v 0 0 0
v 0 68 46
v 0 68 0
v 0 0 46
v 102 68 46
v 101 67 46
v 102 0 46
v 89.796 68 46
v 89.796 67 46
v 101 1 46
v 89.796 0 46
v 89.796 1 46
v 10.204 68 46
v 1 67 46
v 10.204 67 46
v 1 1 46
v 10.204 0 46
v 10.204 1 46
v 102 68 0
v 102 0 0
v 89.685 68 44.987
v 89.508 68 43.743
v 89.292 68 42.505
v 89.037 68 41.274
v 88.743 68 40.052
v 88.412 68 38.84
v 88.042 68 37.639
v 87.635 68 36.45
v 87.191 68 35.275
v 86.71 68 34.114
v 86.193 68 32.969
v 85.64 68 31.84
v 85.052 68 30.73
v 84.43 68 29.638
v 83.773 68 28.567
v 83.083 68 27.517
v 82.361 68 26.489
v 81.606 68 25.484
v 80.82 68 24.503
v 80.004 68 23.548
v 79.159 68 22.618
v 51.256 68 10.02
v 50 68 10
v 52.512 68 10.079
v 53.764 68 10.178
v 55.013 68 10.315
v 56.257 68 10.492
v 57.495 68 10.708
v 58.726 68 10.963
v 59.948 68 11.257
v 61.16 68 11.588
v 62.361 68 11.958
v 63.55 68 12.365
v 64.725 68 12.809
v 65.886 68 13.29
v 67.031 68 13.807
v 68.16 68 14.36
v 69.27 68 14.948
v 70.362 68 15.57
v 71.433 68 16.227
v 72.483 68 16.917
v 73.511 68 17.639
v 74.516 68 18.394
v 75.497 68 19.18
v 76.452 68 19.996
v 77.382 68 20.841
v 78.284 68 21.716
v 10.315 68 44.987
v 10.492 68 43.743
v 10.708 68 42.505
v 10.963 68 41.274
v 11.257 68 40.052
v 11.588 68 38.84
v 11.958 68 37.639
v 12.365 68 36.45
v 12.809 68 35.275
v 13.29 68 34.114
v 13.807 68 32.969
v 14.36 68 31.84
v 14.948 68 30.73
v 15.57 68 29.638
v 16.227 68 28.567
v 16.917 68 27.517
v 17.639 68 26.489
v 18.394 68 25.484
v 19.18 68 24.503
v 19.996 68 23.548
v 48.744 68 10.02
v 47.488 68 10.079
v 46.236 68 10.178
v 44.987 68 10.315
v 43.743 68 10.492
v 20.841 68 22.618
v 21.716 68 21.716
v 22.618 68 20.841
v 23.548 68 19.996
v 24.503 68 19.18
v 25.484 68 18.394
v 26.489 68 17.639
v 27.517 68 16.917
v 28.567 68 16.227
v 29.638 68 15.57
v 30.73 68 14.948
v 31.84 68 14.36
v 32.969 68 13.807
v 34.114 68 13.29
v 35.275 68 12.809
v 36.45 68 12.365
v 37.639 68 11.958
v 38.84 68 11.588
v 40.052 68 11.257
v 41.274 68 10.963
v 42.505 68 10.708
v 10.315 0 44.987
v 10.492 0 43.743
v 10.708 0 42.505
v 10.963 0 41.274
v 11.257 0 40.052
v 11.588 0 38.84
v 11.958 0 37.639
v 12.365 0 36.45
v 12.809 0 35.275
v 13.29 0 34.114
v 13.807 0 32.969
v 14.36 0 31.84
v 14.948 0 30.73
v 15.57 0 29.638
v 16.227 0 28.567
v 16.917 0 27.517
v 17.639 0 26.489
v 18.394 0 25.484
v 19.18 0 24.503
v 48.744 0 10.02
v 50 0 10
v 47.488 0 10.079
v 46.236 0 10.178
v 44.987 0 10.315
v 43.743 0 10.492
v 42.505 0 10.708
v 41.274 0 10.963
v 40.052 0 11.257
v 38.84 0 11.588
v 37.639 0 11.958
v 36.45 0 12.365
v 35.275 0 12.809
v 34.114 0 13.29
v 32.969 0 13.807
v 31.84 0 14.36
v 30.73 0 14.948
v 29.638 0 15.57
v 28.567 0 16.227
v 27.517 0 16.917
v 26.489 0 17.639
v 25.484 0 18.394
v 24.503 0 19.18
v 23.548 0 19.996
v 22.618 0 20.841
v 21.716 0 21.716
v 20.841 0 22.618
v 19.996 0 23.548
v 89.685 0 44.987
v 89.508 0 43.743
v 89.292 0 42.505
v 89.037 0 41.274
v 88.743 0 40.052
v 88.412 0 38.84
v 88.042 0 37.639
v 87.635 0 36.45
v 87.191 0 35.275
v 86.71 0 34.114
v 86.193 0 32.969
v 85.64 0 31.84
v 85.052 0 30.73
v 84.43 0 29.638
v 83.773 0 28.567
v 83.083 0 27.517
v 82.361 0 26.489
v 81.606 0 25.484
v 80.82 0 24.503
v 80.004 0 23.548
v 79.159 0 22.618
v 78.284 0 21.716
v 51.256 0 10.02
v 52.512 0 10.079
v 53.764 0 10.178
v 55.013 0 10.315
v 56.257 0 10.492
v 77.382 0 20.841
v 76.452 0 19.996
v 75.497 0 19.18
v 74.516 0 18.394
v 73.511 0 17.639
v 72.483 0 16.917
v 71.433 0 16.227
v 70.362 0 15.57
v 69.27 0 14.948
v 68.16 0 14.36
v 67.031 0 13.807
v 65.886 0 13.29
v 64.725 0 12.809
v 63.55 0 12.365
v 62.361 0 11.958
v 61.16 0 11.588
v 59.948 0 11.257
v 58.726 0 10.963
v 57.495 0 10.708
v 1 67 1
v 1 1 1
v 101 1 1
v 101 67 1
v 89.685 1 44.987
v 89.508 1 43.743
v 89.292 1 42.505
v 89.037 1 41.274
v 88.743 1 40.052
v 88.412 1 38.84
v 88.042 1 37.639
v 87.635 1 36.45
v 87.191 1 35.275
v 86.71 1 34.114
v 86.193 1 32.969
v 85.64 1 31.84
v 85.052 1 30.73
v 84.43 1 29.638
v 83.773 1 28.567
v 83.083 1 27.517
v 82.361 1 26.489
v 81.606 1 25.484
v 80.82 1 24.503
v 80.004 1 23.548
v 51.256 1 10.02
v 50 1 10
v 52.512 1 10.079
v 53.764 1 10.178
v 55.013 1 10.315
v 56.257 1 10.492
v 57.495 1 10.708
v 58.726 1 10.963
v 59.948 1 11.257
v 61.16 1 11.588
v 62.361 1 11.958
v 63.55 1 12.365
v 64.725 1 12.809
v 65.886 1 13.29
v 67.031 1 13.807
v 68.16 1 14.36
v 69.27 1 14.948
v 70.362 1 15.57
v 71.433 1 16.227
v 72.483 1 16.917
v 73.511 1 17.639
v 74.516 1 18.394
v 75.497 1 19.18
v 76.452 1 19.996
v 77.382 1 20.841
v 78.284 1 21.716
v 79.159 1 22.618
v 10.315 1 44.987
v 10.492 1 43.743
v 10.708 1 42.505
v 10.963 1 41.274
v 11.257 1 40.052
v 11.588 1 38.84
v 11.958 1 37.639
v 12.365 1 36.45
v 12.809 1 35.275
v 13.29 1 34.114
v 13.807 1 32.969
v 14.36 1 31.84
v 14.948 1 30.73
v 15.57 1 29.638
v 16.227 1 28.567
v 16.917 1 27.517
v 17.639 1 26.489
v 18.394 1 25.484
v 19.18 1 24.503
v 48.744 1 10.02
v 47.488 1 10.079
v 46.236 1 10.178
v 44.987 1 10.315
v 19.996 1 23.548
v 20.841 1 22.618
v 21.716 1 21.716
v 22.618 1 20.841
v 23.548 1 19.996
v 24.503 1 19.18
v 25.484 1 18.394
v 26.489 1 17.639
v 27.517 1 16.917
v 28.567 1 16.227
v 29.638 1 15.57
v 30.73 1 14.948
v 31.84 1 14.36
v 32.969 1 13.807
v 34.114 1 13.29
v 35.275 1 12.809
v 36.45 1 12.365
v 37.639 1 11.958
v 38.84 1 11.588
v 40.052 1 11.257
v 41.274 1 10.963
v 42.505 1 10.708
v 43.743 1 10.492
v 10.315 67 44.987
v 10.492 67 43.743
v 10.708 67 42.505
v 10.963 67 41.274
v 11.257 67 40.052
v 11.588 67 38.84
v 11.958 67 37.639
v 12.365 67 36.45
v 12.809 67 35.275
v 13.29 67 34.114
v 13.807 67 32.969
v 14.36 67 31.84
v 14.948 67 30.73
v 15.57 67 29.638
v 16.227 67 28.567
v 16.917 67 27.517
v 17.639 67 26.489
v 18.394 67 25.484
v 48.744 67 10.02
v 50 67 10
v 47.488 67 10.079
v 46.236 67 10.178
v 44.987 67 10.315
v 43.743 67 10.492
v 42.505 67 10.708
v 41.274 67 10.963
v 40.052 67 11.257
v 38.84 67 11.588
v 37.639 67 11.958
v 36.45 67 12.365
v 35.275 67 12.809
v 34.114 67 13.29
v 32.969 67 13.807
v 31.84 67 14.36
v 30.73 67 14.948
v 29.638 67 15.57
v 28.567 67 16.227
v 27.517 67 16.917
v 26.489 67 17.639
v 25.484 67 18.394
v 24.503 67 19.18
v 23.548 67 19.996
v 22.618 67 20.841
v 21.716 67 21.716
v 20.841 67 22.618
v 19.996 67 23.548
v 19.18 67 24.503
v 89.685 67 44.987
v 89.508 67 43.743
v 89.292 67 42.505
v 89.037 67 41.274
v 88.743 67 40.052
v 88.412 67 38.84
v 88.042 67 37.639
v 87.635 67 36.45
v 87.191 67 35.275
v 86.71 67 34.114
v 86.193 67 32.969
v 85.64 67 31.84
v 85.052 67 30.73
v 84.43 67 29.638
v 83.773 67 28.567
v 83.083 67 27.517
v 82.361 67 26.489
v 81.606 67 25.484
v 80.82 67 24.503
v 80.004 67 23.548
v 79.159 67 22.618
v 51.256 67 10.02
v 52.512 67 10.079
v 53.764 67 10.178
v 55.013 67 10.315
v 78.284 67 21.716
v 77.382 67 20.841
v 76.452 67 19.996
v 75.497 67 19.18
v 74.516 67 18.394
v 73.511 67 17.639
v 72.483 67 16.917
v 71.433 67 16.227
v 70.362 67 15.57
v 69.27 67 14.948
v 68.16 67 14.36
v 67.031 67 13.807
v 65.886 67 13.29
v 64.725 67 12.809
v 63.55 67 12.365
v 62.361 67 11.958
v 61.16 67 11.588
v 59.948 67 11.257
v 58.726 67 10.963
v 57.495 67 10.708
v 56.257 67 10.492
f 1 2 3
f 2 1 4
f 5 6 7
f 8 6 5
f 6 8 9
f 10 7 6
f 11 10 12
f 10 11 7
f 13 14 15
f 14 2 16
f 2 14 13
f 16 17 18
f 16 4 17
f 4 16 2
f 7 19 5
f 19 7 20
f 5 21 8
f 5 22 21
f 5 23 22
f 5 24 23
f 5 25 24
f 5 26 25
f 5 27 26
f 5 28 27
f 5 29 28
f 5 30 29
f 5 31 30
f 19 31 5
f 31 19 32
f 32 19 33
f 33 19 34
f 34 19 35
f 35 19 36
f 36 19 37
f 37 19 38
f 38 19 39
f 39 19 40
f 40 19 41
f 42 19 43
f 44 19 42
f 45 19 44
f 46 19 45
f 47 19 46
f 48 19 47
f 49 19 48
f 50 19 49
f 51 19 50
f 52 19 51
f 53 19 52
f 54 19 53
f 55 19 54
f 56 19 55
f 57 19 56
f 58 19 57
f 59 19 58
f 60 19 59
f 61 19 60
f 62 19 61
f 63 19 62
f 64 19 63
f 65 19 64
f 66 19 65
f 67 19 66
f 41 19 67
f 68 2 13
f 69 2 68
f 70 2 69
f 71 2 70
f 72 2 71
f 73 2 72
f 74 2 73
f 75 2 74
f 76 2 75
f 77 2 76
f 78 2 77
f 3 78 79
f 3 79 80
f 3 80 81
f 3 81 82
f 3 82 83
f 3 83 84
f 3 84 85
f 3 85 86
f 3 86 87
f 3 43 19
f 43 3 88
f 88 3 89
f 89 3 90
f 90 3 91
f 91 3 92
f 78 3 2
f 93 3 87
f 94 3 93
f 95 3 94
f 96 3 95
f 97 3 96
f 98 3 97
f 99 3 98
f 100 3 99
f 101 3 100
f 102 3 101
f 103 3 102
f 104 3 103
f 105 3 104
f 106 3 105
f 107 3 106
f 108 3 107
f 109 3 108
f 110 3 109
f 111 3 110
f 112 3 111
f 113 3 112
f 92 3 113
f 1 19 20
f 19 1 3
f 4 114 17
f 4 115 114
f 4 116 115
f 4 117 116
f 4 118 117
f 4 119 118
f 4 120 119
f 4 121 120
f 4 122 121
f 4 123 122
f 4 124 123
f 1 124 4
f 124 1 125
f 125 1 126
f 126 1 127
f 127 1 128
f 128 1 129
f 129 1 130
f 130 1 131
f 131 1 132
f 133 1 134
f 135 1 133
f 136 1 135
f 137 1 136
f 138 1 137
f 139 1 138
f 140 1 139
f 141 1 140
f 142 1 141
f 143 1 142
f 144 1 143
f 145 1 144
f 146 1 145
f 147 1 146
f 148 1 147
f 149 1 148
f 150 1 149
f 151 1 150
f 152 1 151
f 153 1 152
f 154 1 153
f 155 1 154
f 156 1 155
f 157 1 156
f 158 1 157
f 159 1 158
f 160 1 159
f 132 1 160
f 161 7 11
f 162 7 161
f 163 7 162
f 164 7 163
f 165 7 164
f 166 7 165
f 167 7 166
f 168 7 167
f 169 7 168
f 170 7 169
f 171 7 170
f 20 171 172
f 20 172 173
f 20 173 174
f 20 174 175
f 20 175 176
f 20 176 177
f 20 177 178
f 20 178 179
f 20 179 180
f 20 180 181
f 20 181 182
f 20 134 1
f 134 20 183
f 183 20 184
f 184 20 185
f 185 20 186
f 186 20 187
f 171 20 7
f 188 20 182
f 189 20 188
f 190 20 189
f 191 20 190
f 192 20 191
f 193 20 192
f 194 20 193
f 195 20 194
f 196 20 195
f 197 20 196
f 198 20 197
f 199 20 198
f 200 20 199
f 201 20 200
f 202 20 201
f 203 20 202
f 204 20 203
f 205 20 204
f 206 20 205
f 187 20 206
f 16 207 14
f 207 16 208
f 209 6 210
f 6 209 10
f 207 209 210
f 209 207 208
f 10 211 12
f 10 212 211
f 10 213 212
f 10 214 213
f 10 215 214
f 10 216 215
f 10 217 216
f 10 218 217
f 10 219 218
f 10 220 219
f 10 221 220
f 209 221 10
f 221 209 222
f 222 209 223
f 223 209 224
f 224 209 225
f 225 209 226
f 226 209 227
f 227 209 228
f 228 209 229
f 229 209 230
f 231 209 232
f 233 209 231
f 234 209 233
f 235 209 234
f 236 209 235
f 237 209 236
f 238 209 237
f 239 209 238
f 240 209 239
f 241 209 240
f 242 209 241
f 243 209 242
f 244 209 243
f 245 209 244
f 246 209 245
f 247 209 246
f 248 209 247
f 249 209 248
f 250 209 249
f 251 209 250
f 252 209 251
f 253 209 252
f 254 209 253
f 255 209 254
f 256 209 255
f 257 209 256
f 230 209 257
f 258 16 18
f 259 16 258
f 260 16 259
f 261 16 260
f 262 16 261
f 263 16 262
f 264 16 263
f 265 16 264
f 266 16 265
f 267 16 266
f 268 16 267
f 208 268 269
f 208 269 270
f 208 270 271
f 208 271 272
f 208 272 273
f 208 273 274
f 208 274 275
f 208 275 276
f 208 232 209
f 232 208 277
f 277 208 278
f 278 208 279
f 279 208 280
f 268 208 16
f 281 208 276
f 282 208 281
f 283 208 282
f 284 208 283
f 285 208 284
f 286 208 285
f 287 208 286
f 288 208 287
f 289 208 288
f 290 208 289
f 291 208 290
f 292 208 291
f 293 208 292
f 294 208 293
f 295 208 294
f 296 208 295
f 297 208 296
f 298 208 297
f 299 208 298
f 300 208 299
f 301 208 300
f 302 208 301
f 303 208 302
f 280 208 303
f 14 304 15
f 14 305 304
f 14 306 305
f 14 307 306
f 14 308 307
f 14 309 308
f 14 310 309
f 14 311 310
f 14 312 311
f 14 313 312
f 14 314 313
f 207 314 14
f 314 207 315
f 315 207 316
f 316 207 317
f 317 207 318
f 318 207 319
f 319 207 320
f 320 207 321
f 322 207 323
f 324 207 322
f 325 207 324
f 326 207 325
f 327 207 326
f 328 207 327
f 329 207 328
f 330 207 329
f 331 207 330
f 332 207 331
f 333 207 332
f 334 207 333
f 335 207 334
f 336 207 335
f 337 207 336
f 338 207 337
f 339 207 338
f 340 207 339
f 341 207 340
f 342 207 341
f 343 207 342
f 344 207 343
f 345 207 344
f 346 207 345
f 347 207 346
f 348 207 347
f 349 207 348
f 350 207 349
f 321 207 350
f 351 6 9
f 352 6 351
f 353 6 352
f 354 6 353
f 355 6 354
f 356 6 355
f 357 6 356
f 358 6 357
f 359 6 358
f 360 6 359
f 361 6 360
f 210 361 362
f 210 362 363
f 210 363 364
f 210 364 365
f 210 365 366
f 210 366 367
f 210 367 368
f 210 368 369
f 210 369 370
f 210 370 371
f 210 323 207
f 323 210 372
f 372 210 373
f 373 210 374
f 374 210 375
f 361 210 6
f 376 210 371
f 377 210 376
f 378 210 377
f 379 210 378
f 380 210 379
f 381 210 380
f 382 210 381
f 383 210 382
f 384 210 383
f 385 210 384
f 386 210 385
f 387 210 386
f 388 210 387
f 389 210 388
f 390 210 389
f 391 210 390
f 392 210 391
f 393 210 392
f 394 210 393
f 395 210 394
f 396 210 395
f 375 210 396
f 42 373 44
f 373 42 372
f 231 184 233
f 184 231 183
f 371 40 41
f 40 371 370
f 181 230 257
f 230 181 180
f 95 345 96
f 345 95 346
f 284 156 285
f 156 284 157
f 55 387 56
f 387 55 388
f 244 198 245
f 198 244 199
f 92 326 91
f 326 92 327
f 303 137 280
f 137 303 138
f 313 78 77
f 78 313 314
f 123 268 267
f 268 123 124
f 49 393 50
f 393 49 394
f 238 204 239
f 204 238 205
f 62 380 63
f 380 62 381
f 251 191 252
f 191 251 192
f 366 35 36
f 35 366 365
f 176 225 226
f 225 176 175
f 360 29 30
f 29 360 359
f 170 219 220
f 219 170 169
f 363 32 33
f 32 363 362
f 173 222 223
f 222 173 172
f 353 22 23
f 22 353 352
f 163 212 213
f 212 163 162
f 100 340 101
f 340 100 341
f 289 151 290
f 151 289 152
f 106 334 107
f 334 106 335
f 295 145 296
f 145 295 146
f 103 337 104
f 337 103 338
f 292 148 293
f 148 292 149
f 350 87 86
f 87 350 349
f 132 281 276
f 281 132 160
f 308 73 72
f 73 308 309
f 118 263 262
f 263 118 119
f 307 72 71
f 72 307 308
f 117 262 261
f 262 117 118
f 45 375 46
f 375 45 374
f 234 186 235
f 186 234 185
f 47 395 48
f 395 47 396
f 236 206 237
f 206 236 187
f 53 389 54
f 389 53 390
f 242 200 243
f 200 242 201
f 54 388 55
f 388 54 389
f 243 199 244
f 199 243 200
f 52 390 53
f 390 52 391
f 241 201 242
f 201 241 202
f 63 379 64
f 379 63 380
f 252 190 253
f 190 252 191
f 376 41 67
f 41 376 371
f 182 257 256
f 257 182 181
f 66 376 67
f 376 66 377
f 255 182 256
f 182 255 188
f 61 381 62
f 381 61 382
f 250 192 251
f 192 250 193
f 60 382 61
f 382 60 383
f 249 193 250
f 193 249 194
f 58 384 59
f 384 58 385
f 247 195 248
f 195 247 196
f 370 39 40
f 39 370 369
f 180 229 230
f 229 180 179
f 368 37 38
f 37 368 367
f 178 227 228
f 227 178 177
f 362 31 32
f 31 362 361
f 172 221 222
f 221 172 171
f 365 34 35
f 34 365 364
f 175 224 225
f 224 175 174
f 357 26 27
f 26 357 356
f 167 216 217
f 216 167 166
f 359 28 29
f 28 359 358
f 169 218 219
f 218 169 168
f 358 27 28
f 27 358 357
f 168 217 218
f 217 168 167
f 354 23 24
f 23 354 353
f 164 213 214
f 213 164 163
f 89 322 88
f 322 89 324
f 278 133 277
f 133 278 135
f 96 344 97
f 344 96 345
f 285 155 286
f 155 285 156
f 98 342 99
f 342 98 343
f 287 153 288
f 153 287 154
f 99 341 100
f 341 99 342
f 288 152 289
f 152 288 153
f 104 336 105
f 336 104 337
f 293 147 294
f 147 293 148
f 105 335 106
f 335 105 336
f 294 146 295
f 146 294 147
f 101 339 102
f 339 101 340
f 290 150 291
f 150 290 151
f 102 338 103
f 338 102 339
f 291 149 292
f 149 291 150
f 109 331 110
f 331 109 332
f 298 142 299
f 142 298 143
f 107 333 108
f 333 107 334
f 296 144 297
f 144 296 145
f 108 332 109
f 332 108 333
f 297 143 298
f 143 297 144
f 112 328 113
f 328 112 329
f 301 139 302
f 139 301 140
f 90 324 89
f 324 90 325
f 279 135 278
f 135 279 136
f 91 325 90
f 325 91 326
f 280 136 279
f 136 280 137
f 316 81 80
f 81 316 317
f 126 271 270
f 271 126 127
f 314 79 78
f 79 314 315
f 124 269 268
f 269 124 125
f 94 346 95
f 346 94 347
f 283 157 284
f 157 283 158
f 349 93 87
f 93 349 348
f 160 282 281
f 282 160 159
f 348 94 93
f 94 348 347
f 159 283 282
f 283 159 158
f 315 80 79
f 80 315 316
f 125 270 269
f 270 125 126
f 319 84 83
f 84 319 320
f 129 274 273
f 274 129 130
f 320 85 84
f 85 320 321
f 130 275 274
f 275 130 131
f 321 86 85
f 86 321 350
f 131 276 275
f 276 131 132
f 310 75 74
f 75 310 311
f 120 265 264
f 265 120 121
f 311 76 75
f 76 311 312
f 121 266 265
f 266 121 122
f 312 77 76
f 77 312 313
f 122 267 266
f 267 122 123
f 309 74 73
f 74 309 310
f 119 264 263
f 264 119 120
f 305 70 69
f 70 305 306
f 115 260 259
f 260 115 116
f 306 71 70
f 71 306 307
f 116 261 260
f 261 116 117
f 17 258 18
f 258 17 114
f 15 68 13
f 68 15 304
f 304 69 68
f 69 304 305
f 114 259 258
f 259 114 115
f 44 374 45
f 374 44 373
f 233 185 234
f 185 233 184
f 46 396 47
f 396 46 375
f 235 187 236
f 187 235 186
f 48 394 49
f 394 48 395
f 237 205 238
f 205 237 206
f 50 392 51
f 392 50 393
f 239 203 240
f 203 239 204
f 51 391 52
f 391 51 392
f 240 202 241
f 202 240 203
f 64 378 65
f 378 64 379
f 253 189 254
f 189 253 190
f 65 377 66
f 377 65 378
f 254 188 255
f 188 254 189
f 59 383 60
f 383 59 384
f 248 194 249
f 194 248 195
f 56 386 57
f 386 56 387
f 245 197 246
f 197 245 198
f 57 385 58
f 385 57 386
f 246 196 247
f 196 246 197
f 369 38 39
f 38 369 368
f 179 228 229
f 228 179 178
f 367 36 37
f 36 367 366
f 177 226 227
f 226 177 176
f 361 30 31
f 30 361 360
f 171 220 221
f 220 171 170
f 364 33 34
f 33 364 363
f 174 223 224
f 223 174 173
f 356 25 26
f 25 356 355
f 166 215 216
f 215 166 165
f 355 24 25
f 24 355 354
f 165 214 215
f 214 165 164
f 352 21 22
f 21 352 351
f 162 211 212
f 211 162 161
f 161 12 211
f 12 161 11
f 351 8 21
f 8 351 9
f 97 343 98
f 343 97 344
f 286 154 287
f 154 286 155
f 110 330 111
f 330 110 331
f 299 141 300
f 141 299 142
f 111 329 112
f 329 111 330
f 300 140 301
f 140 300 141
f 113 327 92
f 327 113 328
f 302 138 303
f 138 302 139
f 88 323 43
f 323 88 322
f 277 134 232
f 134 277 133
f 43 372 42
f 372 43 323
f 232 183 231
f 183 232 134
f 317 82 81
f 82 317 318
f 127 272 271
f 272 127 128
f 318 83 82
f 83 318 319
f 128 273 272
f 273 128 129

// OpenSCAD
$fn=200;

THICK = 1;

STUMP = 3;

BOX_W = 100;
BOX_L = 66;
BOX_H = 45;




difference() {
    cube(size = [
        BOX_W + (THICK * 2),
        BOX_L + (THICK * 2), 
        BOX_H + THICK]);

    translate([
        THICK, 
        THICK, 
        THICK]) {
            
        cube(size = [
            BOX_W,
            BOX_L,
            BOX_H + 1]);
    }

    translate([
        BOX_W / 2,
        200,
        50]) {

        rotate([90, 0, 0]) {
            cylinder(
                h = 1000,
                r = 40);
        }
    }
    // translate([
    //     -1, 
    //     (BOX_L / 2) - 20, 
    //     20 + STUMP]) {
            
    //     cube(size = [
    //         150,
    //         40,
    //         80]);
    // }

}
